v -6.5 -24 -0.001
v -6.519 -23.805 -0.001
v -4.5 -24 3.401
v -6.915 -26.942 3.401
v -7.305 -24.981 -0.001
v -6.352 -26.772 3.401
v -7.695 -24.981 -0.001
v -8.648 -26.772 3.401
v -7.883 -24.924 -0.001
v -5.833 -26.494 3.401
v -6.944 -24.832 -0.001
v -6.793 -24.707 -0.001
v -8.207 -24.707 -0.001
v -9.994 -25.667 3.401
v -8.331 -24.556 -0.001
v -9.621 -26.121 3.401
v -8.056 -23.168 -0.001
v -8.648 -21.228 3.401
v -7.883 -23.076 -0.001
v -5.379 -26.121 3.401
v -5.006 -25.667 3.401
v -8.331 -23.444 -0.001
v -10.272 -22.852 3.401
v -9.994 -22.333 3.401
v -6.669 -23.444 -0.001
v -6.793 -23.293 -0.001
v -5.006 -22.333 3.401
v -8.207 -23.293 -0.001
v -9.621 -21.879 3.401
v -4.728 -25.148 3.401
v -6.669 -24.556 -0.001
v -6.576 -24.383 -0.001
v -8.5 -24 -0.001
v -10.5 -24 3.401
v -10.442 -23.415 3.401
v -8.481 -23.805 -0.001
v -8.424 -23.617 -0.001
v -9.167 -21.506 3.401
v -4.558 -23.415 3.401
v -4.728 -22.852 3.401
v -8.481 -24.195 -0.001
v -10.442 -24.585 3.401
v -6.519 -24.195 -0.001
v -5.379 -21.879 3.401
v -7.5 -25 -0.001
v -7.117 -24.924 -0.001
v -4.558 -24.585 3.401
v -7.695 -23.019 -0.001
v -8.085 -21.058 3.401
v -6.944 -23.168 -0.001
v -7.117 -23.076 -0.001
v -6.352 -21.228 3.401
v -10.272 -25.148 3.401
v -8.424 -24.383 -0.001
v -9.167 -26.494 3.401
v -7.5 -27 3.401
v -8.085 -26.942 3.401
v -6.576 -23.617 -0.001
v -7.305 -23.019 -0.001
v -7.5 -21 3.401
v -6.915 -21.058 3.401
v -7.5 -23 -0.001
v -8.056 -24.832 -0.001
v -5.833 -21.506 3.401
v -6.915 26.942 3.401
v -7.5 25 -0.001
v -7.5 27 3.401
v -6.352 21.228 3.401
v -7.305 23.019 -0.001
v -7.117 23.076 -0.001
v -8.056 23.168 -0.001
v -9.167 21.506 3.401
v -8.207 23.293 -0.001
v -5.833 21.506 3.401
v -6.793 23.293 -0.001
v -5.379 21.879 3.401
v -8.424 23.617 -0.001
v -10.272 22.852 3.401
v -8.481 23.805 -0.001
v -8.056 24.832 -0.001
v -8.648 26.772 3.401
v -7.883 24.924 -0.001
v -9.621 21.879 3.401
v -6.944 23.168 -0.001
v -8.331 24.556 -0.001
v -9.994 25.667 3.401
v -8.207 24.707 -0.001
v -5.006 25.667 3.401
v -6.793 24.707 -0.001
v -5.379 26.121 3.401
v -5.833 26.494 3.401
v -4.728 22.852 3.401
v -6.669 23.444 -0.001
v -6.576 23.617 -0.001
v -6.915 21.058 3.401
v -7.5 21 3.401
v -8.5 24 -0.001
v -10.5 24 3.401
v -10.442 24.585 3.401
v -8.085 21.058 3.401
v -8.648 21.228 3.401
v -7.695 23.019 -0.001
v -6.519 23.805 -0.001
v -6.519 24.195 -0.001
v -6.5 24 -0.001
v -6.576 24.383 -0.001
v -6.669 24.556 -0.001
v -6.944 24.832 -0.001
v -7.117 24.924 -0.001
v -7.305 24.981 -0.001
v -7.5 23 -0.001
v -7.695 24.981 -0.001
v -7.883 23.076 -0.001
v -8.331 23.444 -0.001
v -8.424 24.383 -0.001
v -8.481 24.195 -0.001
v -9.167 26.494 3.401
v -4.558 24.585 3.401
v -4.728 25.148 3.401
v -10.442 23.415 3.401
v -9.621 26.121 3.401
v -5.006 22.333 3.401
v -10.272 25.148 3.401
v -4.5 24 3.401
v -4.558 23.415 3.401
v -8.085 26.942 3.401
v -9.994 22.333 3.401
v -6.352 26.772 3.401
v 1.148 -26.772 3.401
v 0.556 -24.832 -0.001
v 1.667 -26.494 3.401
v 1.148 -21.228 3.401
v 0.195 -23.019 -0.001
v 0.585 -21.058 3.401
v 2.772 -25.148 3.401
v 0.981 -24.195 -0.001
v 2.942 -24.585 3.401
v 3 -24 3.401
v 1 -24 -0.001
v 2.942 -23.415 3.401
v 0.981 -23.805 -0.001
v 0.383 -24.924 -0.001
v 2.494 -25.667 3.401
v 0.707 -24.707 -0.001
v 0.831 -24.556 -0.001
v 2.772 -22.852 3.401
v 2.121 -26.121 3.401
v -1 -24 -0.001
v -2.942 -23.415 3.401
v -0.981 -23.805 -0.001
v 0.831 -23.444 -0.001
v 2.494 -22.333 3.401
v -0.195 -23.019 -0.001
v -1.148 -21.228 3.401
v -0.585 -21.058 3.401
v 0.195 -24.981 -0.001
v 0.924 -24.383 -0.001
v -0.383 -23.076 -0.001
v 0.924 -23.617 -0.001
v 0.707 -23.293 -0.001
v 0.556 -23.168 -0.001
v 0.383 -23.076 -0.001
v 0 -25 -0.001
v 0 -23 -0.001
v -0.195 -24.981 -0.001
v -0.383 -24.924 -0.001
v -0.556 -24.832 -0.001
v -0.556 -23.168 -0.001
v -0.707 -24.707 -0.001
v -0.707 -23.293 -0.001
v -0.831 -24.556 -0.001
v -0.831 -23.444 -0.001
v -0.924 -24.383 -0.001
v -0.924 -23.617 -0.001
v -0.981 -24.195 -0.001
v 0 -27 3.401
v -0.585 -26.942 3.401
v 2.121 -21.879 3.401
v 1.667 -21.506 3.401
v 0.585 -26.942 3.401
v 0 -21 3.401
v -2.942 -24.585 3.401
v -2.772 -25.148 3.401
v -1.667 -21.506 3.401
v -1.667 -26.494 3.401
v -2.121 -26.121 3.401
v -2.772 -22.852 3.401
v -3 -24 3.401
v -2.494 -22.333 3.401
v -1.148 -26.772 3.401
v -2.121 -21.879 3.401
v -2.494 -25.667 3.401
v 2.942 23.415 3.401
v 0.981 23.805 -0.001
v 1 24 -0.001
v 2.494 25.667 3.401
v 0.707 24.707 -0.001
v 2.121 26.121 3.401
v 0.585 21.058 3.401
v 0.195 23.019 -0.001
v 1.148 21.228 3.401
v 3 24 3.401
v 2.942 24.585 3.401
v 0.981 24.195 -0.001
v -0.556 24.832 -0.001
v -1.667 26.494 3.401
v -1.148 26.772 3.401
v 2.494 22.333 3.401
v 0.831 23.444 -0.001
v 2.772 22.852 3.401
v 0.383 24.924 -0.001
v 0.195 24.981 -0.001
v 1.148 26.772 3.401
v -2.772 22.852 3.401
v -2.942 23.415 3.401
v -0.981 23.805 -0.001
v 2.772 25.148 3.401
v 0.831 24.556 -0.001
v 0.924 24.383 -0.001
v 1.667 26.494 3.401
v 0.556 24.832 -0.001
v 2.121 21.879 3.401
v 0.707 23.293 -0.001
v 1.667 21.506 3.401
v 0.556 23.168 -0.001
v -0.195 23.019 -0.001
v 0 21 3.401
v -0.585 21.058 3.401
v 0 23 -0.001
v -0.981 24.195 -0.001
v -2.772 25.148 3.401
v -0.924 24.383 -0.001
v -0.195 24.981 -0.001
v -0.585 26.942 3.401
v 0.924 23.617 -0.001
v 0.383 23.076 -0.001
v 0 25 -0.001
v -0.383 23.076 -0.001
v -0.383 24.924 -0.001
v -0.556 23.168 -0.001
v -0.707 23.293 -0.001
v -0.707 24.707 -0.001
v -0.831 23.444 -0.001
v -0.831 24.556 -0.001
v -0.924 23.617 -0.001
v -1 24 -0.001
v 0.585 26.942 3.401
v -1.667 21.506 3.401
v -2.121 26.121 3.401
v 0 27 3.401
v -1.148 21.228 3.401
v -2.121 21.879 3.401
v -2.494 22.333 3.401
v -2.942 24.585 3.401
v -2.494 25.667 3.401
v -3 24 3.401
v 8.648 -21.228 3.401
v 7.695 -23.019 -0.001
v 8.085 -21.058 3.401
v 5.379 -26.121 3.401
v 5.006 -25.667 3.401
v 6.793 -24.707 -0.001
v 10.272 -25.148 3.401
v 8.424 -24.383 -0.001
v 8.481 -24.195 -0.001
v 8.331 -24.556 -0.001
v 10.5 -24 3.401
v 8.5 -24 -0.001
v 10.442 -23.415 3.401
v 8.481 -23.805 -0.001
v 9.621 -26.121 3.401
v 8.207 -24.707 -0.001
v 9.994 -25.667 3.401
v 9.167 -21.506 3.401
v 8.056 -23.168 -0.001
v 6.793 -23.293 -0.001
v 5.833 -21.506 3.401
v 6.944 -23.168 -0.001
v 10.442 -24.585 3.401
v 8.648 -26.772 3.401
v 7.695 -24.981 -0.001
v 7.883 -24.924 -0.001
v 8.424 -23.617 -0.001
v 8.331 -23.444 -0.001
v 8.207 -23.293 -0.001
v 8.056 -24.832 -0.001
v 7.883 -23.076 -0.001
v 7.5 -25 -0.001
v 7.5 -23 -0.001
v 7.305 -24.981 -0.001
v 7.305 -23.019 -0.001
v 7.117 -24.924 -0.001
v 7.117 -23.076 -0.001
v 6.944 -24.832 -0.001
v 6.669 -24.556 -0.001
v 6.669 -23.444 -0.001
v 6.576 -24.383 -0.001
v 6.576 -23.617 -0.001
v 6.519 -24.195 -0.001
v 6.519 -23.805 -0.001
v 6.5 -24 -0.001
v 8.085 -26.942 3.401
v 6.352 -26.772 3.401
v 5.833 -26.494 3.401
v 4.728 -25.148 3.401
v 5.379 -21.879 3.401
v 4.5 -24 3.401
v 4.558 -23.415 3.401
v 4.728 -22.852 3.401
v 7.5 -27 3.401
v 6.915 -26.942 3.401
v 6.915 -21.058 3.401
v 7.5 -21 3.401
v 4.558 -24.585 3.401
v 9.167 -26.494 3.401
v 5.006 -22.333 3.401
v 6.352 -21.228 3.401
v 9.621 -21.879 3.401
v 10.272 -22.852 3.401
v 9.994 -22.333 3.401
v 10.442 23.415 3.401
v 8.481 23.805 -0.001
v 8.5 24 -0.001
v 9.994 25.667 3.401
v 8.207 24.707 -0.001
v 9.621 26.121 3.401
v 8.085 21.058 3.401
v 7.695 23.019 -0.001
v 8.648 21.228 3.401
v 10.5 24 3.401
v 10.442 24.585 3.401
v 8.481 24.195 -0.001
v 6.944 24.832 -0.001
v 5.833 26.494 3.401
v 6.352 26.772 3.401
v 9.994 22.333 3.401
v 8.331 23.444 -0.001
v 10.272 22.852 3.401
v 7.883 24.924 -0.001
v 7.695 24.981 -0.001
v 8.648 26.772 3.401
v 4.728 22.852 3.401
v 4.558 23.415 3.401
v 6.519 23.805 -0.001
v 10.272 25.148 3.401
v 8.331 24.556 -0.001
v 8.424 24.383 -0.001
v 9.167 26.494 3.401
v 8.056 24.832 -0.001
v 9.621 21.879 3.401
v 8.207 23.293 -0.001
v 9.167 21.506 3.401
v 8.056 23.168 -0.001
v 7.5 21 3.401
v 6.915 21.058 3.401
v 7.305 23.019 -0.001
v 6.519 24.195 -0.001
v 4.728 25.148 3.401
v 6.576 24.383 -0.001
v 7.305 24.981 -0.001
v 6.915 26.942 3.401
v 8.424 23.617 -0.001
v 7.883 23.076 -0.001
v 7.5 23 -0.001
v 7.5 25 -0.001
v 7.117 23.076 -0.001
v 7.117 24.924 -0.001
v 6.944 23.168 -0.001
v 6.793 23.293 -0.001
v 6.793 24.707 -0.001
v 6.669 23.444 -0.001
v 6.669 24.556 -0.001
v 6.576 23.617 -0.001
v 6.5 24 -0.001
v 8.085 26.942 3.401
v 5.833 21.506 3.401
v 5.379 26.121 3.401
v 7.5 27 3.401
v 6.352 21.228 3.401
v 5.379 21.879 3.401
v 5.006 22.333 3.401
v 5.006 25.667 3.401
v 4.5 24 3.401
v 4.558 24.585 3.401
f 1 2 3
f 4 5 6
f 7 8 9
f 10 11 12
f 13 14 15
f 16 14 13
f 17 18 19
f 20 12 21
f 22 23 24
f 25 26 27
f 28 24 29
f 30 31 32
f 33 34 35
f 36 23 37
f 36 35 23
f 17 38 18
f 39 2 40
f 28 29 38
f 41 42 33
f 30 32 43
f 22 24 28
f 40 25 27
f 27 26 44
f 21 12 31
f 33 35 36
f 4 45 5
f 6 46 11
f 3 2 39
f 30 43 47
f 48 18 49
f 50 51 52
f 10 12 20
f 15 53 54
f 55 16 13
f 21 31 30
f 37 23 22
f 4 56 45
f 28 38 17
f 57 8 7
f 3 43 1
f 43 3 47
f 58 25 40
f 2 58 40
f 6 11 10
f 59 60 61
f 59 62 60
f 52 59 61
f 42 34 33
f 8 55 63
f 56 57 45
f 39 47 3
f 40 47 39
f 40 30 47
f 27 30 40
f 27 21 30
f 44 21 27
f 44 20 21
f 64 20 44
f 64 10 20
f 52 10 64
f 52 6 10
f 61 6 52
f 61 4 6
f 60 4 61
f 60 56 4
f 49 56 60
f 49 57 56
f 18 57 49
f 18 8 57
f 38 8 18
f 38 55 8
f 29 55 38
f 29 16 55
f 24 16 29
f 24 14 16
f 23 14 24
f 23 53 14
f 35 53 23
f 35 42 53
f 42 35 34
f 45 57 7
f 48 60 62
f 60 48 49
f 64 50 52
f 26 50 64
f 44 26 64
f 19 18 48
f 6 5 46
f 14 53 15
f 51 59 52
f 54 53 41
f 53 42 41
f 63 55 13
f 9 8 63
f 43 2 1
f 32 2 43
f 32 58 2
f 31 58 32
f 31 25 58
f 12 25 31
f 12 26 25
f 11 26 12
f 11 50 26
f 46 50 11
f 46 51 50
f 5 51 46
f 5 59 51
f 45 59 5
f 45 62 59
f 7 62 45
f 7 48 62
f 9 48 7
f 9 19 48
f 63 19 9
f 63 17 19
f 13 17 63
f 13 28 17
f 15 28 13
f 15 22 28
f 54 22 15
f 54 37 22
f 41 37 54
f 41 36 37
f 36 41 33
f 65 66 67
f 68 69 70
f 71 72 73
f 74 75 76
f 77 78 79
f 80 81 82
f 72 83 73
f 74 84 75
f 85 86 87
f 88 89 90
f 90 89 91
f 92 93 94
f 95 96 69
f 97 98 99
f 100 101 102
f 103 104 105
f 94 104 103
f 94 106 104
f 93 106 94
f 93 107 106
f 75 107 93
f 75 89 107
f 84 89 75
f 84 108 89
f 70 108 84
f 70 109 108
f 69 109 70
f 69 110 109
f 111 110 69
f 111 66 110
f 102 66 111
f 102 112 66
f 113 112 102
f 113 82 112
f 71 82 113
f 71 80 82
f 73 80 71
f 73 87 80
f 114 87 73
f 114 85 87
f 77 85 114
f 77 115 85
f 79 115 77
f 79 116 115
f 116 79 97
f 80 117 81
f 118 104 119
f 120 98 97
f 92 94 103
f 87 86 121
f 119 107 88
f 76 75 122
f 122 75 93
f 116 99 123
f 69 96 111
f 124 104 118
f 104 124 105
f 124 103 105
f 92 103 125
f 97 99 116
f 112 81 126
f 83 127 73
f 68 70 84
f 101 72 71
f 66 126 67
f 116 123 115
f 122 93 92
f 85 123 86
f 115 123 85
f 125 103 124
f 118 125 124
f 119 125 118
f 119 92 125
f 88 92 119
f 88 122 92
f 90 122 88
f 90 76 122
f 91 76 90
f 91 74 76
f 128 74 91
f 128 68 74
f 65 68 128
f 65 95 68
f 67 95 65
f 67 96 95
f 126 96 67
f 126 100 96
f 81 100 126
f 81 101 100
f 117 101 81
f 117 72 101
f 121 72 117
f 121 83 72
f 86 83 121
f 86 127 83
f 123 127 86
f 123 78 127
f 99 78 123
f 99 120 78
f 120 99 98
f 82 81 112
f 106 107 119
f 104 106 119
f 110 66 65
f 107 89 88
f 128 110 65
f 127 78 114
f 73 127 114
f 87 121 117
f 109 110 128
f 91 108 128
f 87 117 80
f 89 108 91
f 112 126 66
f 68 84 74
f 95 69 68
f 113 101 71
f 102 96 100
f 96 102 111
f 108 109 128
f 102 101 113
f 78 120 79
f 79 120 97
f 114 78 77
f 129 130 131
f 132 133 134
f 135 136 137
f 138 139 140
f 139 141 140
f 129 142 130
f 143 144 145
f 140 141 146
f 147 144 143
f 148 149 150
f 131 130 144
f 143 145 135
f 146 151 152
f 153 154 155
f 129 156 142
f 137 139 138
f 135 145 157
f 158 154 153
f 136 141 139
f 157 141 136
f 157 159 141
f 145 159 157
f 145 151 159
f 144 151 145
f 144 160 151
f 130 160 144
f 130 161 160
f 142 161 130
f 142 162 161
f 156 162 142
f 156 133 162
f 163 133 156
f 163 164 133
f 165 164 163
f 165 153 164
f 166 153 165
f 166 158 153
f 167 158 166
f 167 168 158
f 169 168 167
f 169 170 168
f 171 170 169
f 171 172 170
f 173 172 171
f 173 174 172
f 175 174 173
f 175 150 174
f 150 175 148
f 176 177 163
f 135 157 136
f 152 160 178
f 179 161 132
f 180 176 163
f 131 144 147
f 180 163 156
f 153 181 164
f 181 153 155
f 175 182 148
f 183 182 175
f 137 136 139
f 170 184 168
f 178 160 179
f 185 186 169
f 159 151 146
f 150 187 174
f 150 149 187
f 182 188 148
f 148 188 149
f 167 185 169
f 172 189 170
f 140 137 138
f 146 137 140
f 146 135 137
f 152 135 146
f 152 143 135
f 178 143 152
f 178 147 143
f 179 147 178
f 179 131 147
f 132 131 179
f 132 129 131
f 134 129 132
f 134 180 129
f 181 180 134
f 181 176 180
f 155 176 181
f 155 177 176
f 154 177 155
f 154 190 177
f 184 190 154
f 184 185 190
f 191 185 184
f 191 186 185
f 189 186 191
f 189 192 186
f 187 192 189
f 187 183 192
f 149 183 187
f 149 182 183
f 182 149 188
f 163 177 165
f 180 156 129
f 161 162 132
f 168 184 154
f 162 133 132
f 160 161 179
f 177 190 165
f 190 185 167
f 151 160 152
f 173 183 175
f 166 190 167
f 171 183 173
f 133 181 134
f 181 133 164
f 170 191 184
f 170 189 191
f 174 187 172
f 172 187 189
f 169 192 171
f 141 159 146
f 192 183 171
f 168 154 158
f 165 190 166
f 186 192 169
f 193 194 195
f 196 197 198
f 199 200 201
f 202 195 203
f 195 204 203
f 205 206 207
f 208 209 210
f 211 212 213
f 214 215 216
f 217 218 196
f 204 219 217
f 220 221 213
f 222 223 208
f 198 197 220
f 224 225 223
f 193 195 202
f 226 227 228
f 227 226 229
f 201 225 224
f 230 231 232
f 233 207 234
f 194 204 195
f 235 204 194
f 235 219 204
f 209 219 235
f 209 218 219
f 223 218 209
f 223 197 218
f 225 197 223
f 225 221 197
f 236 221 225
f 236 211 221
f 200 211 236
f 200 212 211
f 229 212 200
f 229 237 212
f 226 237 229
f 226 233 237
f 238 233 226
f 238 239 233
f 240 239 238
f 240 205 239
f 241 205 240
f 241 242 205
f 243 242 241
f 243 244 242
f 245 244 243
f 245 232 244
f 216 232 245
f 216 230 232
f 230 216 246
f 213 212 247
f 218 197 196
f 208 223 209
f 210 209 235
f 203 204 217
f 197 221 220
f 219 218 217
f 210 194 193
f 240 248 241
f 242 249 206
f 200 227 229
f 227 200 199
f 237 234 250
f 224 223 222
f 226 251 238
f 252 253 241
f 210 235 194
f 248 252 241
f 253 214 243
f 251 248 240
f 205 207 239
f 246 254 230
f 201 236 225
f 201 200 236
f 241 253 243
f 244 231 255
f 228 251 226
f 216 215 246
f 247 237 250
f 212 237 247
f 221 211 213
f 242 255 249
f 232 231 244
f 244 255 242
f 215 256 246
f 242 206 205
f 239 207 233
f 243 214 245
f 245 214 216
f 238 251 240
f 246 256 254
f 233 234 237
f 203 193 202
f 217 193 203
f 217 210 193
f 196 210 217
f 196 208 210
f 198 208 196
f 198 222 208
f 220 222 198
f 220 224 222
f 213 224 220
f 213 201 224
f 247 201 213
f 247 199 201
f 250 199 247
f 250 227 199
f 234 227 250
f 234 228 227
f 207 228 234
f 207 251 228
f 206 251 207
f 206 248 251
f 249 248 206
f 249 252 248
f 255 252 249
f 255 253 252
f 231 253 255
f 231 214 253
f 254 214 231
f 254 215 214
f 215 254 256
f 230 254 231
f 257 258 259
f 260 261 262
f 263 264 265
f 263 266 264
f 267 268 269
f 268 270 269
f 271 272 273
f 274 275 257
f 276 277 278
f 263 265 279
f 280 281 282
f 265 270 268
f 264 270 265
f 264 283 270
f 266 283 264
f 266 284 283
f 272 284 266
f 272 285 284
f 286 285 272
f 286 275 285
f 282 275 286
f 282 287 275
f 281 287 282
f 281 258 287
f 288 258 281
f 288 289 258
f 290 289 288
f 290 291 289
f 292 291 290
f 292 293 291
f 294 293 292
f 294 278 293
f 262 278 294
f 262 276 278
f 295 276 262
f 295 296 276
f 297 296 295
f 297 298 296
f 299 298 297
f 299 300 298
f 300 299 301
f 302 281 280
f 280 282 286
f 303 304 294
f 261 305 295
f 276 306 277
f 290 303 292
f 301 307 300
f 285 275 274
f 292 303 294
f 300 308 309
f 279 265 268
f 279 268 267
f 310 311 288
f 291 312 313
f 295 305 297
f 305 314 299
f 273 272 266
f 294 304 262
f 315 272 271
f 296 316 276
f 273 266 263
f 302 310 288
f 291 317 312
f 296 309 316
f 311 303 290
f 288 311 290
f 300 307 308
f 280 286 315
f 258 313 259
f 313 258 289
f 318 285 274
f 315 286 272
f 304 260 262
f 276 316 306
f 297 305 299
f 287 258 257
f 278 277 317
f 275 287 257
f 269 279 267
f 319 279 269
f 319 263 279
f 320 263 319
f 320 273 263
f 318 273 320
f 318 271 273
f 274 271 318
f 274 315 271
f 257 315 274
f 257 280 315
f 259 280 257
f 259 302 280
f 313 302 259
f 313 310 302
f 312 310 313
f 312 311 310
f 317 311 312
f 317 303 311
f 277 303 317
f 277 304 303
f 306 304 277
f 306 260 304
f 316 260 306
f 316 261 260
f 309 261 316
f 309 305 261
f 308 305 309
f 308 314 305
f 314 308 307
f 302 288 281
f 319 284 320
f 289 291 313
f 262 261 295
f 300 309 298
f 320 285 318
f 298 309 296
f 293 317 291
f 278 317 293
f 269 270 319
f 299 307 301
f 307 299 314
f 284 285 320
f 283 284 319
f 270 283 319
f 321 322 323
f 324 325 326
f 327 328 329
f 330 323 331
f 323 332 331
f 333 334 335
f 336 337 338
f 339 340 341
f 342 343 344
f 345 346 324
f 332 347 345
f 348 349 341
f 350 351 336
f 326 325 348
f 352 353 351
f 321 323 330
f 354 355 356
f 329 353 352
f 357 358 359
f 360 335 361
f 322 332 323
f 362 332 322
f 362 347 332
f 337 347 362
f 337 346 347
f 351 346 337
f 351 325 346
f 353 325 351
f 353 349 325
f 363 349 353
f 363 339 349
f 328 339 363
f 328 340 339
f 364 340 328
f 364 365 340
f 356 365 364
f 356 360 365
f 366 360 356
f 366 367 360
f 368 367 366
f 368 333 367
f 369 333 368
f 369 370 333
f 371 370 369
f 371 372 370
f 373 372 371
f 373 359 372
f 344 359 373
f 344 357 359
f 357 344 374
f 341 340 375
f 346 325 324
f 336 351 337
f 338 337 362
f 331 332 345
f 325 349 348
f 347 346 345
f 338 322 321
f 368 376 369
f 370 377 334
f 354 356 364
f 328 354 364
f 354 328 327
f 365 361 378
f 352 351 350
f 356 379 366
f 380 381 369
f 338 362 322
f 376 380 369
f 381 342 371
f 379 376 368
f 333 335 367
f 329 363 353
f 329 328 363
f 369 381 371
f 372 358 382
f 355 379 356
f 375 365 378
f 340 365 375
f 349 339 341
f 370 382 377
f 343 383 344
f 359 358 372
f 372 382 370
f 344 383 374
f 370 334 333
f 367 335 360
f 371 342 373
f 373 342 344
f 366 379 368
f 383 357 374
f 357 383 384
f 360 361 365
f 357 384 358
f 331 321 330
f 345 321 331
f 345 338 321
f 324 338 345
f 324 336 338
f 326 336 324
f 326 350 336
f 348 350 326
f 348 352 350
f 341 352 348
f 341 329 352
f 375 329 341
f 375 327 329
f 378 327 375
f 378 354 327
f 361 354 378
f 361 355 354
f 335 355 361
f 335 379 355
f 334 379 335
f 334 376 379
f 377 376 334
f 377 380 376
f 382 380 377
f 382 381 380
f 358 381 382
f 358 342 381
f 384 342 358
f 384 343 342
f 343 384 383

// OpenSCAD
// file: ../shapes.scad
// The xy_ variants of shape modules are centered with respect to the X/Y axes and "sit" on te XY plane.

$fn=32;

module xy_cube(width, depth, height) {
    translate([0, 0, height / 2])
    cube([width, depth, height], center=true);
}

module xy_cylinder(
    h,
    r, r1, r2,
    d, d1, d2)
{
    translate([0, 0, h / 2])
    cylinder(h=h, r=r, r1=r1, r2=r2, d=d, d1=d1, d2=d2, center=true);
}

module rounded_square(width, length, radius) {
    diameter = radius * 2;
    
    minkowski() {
        square([width - diameter, length - diameter], center=true);
        circle(radius);
    }
}

// Spreads out its children, spacing them along the x/y/z axis by the given amount.
module spread(x, y, z) {
    for(i = [0 : $children -1 ]) {
        translate([i*x, i*y, i*z])
        children(i);
    }
}

spread(15, 0, 0) {
    xy_cube(10, 10, 10);
    xy_cylinder(10, d=10);
    rounded_square(5, 10, 1);
}
// file: ../globals.scad
$fn = 64;

// The tolerance of your 3d printer that results in a "tight fit" of two parts.
tolerance = 0.1;

// A small value to be used to offset unions and differences to avoid "z-fighting"
epsilon = 0.001;
// main file
// The designs in this folder are meant to be mounted on a side panel using the "battery panel mount" that is
// included in the official AAT STLs
// https://github.com/aat-sentinel/AAT-lite-hardware/tree/main/Extras/AAT%20battery%20panel%20mount

include <../globals.scad>
use <../shapes.scad>

// Dimensions of the blocks on a side panel of the Sentinel AAT
panel_block_width = 16;
panel_block_length = 30;
panel_block_separation = 32;

// M3 phillips flat head screw dimensions, included in the Sentinel kit.
panel_screwhead_diameter = 6;
panel_screw_diameter = 2;

module panel_mounting_holes(height) {
    // There are 3 screw holes, evenly spaced, in a single column centered on the blocks.
    x_offset = panel_block_length / 4;
    y_offset = (panel_block_separation / 2) + panel_block_width / 2;
    
    for(x = [-1, 0, 1]) {
        for(y = [-1, 1]) {
            translate([x * x_offset, y * y_offset, -epsilon])
            xy_cylinder(
                h = height + (2 * epsilon),
                d1 = panel_screw_diameter,
                d2 = panel_screwhead_diameter
            );
        }
    }
}

panel_mounting_holes(3.4);
